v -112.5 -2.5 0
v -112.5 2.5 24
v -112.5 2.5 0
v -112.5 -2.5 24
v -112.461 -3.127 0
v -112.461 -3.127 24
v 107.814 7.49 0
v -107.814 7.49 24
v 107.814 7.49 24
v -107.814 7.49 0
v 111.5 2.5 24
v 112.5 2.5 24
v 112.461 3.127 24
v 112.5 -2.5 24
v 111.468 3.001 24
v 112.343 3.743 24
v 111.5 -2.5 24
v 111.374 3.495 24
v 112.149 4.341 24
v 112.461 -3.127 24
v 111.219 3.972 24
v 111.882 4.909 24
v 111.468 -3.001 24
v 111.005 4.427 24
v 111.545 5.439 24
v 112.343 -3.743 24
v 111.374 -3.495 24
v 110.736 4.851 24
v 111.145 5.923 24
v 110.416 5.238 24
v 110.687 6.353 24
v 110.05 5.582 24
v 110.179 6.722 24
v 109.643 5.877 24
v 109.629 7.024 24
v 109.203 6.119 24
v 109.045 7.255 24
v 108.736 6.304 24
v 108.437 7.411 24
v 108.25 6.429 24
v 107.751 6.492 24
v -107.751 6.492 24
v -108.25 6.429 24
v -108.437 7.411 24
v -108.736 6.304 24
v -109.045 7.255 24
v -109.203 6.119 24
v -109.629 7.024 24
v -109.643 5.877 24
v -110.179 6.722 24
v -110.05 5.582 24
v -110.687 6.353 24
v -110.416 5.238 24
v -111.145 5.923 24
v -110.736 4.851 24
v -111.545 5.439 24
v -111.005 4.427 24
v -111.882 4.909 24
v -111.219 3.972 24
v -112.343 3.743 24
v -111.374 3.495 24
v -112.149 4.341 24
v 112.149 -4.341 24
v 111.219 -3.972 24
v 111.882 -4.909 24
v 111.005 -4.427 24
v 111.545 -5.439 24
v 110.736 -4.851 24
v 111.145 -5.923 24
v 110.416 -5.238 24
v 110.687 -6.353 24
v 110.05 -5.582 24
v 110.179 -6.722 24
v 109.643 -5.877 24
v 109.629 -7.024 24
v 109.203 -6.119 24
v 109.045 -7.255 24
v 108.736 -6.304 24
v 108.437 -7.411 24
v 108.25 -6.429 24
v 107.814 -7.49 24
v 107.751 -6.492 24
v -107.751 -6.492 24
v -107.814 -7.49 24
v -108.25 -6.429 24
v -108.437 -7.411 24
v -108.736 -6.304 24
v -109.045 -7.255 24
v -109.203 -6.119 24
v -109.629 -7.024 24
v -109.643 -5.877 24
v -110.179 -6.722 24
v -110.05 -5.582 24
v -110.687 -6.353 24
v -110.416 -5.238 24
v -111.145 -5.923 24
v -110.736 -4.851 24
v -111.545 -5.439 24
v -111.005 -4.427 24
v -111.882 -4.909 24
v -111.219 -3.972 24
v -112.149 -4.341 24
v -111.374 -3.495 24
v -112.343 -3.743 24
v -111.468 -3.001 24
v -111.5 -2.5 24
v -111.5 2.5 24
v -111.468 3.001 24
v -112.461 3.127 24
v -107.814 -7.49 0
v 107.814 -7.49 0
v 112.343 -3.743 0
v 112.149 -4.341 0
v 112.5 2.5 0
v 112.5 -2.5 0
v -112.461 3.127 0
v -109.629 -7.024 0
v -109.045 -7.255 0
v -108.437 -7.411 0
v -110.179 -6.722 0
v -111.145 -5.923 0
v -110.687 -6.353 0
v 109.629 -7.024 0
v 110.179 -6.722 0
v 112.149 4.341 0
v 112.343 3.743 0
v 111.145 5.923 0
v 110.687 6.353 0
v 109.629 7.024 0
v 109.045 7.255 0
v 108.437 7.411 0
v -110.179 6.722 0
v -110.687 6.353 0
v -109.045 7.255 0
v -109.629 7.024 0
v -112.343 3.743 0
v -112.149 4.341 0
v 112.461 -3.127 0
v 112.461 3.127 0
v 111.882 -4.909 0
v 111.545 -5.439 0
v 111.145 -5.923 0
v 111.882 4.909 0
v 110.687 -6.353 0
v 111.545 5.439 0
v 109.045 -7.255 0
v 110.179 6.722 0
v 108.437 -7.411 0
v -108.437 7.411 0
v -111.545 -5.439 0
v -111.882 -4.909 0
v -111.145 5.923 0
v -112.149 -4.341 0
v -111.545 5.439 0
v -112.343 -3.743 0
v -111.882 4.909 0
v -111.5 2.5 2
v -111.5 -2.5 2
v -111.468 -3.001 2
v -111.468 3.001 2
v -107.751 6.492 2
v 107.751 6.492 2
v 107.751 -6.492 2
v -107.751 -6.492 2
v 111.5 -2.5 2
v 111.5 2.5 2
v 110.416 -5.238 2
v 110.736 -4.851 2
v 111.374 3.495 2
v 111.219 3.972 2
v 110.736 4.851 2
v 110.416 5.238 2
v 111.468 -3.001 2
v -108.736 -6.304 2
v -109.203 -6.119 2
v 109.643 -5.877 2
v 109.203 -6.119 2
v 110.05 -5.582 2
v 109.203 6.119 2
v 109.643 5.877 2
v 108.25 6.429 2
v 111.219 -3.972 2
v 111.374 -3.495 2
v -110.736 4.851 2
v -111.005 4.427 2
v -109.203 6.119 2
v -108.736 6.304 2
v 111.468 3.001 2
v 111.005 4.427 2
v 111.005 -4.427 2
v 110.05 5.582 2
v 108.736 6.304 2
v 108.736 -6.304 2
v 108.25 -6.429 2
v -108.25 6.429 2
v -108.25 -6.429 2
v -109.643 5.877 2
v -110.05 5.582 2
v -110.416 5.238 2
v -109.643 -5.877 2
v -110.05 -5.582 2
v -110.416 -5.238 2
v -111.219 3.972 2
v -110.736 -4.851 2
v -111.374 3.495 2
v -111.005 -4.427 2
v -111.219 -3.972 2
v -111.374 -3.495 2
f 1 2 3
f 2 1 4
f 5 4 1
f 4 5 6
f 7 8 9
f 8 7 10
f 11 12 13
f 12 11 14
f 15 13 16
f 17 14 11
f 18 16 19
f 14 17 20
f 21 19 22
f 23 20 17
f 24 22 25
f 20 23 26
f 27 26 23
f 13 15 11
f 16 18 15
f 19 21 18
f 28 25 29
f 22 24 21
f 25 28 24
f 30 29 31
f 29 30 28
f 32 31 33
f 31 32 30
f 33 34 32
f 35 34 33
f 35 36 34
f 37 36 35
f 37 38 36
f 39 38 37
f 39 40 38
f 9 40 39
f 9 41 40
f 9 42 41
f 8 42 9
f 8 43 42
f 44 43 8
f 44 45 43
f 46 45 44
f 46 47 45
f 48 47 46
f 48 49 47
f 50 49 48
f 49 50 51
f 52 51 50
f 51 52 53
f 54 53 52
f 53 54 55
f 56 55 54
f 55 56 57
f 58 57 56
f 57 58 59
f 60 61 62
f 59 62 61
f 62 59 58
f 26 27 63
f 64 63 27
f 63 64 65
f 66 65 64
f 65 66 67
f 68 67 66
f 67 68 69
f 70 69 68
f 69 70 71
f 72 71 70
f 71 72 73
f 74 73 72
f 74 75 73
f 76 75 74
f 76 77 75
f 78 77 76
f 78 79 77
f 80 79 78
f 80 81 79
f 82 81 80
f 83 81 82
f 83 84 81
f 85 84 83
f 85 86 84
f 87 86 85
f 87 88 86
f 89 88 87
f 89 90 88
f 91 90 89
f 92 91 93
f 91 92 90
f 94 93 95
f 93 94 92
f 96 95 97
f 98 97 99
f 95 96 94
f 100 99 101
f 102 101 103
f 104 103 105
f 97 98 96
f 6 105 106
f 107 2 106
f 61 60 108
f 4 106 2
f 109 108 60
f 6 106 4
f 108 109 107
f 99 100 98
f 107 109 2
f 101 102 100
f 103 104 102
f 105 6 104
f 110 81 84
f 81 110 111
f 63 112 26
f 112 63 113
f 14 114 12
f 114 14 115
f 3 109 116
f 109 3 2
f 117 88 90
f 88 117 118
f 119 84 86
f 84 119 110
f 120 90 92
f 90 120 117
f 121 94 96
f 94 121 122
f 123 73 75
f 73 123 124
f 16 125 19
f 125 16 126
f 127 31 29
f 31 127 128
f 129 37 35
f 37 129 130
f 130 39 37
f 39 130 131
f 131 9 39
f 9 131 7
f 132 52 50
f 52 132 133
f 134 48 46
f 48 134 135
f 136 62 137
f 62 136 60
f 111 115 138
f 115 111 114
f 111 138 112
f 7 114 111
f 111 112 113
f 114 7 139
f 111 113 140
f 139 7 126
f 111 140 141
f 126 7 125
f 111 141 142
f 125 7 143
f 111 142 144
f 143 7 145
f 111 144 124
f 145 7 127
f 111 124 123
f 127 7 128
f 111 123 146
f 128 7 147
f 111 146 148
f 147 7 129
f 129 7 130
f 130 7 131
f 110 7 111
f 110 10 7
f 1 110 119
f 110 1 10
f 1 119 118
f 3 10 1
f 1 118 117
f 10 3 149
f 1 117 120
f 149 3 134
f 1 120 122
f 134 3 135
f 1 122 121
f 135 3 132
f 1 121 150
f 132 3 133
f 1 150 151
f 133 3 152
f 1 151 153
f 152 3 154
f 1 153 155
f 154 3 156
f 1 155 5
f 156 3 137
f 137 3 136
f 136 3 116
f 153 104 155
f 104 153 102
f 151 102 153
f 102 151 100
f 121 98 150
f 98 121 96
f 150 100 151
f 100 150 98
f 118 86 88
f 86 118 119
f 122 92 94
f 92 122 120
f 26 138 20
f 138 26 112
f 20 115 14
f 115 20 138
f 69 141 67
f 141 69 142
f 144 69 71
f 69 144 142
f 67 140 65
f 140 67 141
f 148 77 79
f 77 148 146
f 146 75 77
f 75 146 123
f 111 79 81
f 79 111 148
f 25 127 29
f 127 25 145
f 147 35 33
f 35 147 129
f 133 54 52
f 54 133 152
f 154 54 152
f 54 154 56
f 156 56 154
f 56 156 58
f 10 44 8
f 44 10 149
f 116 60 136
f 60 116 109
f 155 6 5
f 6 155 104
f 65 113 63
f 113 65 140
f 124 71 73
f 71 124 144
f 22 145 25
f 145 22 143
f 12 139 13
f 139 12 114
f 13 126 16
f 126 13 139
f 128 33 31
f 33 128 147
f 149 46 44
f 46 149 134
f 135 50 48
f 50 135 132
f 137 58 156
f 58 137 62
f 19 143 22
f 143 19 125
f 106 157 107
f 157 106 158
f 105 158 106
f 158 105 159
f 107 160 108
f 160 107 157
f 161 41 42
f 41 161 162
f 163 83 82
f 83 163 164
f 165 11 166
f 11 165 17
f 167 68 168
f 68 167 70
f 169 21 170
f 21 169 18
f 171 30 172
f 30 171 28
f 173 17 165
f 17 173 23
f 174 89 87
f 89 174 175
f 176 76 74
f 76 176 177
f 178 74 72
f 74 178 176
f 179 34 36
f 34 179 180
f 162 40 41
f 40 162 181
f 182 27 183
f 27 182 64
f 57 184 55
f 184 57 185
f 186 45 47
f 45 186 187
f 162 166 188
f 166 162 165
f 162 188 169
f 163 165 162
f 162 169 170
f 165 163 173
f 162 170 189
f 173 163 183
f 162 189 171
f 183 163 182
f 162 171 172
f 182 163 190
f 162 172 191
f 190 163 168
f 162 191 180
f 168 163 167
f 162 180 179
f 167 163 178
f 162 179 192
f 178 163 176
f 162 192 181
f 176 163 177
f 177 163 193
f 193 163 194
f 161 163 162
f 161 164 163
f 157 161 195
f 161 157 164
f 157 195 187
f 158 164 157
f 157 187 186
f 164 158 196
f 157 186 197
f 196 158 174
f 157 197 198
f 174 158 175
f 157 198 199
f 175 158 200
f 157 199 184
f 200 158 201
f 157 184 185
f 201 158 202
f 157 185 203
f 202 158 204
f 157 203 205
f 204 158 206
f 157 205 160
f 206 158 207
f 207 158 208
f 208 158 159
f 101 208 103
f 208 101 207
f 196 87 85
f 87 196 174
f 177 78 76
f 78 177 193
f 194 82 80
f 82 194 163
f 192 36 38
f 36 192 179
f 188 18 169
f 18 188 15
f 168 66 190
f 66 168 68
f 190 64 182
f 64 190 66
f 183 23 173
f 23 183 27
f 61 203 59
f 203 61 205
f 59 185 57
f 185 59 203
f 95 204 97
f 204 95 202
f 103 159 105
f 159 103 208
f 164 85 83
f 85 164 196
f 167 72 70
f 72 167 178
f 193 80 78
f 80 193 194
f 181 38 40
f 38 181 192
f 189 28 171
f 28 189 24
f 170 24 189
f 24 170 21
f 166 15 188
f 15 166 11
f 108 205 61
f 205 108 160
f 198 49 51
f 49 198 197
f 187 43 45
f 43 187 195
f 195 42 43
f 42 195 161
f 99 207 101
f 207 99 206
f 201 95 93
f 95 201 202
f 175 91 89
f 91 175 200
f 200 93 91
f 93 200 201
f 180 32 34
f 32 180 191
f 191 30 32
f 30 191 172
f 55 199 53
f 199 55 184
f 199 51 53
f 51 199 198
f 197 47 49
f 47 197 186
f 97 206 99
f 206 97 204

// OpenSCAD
$fn = 50;


difference() {
	union() {
		hull() {
			translate(v = [-107.5000000000, 2.5000000000, 0]) {
				cylinder(h = 24, r = 5);
			}
			translate(v = [107.5000000000, 2.5000000000, 0]) {
				cylinder(h = 24, r = 5);
			}
			translate(v = [-107.5000000000, -2.5000000000, 0]) {
				cylinder(h = 24, r = 5);
			}
			translate(v = [107.5000000000, -2.5000000000, 0]) {
				cylinder(h = 24, r = 5);
			}
		}
	}
	union() {
		translate(v = [0, 0, 2]) {
			hull() {
				translate(v = [-107.5000000000, 2.5000000000, 0]) {
					cylinder(h = 22, r = 4);
				}
				translate(v = [107.5000000000, 2.5000000000, 0]) {
					cylinder(h = 22, r = 4);
				}
				translate(v = [-107.5000000000, -2.5000000000, 0]) {
					cylinder(h = 22, r = 4);
				}
				translate(v = [107.5000000000, -2.5000000000, 0]) {
					cylinder(h = 22, r = 4);
				}
			}
		}
	}
}
